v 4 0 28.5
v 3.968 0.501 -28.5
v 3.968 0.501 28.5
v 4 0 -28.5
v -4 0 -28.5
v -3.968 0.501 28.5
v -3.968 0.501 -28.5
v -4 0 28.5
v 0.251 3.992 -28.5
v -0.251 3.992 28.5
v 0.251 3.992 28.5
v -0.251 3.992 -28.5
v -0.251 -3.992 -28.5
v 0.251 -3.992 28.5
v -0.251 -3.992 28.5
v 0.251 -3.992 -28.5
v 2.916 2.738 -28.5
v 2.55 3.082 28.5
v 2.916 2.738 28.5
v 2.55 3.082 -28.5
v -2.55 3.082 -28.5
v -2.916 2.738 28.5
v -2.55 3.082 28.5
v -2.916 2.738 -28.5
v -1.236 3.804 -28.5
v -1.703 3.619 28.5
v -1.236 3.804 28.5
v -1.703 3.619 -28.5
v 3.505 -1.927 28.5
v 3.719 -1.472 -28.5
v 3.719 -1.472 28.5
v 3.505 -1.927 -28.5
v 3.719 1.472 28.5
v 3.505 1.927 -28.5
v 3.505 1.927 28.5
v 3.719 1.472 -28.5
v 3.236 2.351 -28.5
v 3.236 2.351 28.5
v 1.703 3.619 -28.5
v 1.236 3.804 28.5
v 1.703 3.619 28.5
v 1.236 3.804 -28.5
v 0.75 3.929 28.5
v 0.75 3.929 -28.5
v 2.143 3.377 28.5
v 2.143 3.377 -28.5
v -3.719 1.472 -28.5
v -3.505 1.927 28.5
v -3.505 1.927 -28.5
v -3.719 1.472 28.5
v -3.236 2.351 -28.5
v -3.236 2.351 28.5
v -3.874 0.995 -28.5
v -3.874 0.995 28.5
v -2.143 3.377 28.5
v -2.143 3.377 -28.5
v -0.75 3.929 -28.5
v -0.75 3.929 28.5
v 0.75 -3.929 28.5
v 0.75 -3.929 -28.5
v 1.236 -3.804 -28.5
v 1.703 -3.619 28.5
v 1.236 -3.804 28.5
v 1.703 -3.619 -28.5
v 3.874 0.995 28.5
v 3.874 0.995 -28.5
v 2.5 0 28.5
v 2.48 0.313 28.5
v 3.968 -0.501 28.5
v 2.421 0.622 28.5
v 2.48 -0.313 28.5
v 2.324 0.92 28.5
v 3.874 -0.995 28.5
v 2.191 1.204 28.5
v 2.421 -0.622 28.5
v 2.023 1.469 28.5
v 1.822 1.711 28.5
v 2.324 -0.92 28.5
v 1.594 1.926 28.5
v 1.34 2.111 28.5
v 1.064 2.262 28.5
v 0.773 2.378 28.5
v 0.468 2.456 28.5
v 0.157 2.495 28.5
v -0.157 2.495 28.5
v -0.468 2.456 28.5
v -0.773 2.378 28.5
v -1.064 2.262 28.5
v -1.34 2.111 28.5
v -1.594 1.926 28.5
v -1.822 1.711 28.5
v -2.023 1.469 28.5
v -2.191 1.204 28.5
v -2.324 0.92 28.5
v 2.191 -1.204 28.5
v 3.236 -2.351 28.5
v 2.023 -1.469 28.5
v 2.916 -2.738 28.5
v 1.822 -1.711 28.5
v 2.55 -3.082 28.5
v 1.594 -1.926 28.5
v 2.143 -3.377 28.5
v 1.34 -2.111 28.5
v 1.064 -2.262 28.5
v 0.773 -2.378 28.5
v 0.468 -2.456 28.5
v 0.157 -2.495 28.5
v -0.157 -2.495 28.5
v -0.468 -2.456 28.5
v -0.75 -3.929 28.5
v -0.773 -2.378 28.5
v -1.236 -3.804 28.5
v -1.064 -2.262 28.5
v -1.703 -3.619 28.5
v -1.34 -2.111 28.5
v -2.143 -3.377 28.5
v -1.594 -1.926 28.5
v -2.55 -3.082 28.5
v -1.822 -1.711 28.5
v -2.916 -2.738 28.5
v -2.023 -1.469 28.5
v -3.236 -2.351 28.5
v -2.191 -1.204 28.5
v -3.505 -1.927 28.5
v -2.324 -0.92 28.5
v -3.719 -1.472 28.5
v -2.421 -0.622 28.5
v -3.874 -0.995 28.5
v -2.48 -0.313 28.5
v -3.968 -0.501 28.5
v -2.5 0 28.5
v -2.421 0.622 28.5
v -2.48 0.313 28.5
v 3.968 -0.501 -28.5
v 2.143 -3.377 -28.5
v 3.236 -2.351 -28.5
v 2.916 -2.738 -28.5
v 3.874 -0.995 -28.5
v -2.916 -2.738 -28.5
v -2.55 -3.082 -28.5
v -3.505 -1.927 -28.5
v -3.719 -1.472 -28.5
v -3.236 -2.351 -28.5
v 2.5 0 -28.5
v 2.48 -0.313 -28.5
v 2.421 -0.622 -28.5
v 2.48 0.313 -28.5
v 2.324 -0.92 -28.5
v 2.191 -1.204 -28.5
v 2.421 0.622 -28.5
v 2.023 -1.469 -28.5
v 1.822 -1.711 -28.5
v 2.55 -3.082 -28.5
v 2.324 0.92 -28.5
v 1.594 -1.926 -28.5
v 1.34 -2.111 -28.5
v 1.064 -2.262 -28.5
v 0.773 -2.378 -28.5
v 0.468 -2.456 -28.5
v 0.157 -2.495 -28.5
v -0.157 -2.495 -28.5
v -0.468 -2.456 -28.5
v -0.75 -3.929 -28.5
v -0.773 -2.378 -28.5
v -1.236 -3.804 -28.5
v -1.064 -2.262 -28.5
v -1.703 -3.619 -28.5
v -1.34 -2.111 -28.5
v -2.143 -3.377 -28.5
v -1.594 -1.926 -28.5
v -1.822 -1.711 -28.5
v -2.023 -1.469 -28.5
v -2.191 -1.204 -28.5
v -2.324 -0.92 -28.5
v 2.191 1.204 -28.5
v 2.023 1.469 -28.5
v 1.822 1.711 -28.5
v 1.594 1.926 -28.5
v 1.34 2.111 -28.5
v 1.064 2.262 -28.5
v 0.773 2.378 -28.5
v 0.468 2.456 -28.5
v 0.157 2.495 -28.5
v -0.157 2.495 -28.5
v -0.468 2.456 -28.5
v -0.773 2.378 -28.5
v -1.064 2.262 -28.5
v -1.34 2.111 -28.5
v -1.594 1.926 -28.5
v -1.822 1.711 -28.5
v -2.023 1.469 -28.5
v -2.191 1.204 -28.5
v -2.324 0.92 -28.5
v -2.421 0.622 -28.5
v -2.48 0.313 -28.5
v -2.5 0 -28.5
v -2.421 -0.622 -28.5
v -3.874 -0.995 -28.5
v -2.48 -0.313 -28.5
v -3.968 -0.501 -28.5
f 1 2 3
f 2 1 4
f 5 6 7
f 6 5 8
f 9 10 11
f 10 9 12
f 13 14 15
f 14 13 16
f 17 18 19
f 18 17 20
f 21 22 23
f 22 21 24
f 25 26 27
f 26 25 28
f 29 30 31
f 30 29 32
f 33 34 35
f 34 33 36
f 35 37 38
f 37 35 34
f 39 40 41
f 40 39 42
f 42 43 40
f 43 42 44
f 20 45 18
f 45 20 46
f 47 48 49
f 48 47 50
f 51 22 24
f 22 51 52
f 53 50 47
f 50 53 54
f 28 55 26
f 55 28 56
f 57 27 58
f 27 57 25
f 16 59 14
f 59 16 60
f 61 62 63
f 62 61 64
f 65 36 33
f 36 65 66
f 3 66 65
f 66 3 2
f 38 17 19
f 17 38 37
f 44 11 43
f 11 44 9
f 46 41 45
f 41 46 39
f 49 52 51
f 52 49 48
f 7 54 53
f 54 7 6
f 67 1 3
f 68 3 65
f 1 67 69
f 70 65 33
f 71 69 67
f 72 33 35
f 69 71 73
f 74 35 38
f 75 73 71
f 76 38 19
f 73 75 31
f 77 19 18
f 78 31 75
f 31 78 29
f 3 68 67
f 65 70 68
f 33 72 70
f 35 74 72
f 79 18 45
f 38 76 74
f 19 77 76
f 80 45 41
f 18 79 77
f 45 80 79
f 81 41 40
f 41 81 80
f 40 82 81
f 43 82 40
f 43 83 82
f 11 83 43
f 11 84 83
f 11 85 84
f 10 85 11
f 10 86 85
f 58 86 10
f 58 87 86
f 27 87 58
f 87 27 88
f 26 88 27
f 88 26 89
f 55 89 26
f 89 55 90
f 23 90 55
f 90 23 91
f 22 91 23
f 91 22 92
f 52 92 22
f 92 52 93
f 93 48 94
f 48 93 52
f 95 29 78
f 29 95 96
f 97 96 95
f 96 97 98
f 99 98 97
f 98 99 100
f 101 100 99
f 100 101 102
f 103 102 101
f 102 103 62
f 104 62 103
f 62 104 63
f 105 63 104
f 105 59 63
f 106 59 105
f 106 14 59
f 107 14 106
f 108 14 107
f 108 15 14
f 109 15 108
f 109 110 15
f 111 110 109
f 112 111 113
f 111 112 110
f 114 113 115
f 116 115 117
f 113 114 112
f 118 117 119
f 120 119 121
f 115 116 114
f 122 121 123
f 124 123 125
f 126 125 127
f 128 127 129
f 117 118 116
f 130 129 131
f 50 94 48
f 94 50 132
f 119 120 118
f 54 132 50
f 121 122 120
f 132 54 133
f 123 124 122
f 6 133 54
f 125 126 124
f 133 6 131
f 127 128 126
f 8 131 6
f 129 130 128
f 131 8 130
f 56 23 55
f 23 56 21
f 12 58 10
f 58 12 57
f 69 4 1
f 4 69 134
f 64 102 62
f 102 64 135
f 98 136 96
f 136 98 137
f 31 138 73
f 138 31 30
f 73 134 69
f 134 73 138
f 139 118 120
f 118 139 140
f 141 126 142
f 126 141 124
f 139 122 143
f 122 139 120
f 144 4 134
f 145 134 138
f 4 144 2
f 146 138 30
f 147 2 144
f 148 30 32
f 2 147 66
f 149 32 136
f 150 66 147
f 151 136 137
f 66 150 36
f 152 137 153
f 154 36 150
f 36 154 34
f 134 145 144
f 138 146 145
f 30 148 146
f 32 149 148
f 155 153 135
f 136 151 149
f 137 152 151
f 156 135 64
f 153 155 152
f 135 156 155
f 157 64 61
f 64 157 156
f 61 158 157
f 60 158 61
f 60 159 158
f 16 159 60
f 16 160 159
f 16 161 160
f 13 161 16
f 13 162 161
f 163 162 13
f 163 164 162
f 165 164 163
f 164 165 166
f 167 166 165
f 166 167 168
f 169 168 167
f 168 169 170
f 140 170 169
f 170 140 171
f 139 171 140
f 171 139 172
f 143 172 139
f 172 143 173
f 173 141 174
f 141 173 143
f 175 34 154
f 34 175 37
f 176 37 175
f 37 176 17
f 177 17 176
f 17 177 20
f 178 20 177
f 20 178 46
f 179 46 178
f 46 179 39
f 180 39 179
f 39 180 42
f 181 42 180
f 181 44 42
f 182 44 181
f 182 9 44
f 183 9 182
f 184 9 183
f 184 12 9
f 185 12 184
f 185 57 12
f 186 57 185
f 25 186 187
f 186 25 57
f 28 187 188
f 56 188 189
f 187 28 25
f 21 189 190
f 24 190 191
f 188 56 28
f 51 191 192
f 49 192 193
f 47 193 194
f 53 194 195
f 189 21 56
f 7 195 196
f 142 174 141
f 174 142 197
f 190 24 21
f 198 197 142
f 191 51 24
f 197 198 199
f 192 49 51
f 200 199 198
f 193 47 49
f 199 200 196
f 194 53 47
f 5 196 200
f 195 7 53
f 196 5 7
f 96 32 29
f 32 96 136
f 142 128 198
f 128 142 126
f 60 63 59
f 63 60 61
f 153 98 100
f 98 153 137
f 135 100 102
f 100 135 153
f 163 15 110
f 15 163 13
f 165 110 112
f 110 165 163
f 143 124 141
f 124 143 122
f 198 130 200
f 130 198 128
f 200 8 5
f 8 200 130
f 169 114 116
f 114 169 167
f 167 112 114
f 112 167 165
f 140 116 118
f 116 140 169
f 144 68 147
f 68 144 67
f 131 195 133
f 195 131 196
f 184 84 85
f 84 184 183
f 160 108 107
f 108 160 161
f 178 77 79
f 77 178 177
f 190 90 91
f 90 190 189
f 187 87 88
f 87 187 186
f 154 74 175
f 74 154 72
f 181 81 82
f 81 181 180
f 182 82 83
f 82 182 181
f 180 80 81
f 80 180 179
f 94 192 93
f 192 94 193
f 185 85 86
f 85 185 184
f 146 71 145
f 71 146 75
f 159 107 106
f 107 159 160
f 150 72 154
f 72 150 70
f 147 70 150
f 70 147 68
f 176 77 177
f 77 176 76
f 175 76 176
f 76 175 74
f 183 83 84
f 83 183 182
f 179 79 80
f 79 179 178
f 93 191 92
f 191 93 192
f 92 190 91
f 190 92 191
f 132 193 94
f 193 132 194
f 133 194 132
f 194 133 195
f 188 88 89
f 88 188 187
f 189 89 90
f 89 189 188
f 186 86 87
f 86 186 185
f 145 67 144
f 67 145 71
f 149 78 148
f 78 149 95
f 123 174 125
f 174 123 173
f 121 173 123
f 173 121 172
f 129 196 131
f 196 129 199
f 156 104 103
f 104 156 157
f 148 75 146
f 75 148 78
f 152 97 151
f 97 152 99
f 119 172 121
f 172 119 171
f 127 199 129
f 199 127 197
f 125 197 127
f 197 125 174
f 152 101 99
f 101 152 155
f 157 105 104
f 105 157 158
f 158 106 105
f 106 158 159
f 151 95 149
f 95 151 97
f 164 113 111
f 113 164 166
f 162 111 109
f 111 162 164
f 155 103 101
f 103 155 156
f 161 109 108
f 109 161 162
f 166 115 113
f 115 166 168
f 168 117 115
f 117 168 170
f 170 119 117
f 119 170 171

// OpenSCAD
$fn = 50;


difference() {
	union() {
		translate(v = [0, 0, -28.5000000000]) {
			cylinder(h = 57, r = 4.0000000000);
		}
	}
	union() {
		translate(v = [0, 0, -100.0000000000]) {
			cylinder(h = 200, r = 2.5000000000);
		}
	}
}
